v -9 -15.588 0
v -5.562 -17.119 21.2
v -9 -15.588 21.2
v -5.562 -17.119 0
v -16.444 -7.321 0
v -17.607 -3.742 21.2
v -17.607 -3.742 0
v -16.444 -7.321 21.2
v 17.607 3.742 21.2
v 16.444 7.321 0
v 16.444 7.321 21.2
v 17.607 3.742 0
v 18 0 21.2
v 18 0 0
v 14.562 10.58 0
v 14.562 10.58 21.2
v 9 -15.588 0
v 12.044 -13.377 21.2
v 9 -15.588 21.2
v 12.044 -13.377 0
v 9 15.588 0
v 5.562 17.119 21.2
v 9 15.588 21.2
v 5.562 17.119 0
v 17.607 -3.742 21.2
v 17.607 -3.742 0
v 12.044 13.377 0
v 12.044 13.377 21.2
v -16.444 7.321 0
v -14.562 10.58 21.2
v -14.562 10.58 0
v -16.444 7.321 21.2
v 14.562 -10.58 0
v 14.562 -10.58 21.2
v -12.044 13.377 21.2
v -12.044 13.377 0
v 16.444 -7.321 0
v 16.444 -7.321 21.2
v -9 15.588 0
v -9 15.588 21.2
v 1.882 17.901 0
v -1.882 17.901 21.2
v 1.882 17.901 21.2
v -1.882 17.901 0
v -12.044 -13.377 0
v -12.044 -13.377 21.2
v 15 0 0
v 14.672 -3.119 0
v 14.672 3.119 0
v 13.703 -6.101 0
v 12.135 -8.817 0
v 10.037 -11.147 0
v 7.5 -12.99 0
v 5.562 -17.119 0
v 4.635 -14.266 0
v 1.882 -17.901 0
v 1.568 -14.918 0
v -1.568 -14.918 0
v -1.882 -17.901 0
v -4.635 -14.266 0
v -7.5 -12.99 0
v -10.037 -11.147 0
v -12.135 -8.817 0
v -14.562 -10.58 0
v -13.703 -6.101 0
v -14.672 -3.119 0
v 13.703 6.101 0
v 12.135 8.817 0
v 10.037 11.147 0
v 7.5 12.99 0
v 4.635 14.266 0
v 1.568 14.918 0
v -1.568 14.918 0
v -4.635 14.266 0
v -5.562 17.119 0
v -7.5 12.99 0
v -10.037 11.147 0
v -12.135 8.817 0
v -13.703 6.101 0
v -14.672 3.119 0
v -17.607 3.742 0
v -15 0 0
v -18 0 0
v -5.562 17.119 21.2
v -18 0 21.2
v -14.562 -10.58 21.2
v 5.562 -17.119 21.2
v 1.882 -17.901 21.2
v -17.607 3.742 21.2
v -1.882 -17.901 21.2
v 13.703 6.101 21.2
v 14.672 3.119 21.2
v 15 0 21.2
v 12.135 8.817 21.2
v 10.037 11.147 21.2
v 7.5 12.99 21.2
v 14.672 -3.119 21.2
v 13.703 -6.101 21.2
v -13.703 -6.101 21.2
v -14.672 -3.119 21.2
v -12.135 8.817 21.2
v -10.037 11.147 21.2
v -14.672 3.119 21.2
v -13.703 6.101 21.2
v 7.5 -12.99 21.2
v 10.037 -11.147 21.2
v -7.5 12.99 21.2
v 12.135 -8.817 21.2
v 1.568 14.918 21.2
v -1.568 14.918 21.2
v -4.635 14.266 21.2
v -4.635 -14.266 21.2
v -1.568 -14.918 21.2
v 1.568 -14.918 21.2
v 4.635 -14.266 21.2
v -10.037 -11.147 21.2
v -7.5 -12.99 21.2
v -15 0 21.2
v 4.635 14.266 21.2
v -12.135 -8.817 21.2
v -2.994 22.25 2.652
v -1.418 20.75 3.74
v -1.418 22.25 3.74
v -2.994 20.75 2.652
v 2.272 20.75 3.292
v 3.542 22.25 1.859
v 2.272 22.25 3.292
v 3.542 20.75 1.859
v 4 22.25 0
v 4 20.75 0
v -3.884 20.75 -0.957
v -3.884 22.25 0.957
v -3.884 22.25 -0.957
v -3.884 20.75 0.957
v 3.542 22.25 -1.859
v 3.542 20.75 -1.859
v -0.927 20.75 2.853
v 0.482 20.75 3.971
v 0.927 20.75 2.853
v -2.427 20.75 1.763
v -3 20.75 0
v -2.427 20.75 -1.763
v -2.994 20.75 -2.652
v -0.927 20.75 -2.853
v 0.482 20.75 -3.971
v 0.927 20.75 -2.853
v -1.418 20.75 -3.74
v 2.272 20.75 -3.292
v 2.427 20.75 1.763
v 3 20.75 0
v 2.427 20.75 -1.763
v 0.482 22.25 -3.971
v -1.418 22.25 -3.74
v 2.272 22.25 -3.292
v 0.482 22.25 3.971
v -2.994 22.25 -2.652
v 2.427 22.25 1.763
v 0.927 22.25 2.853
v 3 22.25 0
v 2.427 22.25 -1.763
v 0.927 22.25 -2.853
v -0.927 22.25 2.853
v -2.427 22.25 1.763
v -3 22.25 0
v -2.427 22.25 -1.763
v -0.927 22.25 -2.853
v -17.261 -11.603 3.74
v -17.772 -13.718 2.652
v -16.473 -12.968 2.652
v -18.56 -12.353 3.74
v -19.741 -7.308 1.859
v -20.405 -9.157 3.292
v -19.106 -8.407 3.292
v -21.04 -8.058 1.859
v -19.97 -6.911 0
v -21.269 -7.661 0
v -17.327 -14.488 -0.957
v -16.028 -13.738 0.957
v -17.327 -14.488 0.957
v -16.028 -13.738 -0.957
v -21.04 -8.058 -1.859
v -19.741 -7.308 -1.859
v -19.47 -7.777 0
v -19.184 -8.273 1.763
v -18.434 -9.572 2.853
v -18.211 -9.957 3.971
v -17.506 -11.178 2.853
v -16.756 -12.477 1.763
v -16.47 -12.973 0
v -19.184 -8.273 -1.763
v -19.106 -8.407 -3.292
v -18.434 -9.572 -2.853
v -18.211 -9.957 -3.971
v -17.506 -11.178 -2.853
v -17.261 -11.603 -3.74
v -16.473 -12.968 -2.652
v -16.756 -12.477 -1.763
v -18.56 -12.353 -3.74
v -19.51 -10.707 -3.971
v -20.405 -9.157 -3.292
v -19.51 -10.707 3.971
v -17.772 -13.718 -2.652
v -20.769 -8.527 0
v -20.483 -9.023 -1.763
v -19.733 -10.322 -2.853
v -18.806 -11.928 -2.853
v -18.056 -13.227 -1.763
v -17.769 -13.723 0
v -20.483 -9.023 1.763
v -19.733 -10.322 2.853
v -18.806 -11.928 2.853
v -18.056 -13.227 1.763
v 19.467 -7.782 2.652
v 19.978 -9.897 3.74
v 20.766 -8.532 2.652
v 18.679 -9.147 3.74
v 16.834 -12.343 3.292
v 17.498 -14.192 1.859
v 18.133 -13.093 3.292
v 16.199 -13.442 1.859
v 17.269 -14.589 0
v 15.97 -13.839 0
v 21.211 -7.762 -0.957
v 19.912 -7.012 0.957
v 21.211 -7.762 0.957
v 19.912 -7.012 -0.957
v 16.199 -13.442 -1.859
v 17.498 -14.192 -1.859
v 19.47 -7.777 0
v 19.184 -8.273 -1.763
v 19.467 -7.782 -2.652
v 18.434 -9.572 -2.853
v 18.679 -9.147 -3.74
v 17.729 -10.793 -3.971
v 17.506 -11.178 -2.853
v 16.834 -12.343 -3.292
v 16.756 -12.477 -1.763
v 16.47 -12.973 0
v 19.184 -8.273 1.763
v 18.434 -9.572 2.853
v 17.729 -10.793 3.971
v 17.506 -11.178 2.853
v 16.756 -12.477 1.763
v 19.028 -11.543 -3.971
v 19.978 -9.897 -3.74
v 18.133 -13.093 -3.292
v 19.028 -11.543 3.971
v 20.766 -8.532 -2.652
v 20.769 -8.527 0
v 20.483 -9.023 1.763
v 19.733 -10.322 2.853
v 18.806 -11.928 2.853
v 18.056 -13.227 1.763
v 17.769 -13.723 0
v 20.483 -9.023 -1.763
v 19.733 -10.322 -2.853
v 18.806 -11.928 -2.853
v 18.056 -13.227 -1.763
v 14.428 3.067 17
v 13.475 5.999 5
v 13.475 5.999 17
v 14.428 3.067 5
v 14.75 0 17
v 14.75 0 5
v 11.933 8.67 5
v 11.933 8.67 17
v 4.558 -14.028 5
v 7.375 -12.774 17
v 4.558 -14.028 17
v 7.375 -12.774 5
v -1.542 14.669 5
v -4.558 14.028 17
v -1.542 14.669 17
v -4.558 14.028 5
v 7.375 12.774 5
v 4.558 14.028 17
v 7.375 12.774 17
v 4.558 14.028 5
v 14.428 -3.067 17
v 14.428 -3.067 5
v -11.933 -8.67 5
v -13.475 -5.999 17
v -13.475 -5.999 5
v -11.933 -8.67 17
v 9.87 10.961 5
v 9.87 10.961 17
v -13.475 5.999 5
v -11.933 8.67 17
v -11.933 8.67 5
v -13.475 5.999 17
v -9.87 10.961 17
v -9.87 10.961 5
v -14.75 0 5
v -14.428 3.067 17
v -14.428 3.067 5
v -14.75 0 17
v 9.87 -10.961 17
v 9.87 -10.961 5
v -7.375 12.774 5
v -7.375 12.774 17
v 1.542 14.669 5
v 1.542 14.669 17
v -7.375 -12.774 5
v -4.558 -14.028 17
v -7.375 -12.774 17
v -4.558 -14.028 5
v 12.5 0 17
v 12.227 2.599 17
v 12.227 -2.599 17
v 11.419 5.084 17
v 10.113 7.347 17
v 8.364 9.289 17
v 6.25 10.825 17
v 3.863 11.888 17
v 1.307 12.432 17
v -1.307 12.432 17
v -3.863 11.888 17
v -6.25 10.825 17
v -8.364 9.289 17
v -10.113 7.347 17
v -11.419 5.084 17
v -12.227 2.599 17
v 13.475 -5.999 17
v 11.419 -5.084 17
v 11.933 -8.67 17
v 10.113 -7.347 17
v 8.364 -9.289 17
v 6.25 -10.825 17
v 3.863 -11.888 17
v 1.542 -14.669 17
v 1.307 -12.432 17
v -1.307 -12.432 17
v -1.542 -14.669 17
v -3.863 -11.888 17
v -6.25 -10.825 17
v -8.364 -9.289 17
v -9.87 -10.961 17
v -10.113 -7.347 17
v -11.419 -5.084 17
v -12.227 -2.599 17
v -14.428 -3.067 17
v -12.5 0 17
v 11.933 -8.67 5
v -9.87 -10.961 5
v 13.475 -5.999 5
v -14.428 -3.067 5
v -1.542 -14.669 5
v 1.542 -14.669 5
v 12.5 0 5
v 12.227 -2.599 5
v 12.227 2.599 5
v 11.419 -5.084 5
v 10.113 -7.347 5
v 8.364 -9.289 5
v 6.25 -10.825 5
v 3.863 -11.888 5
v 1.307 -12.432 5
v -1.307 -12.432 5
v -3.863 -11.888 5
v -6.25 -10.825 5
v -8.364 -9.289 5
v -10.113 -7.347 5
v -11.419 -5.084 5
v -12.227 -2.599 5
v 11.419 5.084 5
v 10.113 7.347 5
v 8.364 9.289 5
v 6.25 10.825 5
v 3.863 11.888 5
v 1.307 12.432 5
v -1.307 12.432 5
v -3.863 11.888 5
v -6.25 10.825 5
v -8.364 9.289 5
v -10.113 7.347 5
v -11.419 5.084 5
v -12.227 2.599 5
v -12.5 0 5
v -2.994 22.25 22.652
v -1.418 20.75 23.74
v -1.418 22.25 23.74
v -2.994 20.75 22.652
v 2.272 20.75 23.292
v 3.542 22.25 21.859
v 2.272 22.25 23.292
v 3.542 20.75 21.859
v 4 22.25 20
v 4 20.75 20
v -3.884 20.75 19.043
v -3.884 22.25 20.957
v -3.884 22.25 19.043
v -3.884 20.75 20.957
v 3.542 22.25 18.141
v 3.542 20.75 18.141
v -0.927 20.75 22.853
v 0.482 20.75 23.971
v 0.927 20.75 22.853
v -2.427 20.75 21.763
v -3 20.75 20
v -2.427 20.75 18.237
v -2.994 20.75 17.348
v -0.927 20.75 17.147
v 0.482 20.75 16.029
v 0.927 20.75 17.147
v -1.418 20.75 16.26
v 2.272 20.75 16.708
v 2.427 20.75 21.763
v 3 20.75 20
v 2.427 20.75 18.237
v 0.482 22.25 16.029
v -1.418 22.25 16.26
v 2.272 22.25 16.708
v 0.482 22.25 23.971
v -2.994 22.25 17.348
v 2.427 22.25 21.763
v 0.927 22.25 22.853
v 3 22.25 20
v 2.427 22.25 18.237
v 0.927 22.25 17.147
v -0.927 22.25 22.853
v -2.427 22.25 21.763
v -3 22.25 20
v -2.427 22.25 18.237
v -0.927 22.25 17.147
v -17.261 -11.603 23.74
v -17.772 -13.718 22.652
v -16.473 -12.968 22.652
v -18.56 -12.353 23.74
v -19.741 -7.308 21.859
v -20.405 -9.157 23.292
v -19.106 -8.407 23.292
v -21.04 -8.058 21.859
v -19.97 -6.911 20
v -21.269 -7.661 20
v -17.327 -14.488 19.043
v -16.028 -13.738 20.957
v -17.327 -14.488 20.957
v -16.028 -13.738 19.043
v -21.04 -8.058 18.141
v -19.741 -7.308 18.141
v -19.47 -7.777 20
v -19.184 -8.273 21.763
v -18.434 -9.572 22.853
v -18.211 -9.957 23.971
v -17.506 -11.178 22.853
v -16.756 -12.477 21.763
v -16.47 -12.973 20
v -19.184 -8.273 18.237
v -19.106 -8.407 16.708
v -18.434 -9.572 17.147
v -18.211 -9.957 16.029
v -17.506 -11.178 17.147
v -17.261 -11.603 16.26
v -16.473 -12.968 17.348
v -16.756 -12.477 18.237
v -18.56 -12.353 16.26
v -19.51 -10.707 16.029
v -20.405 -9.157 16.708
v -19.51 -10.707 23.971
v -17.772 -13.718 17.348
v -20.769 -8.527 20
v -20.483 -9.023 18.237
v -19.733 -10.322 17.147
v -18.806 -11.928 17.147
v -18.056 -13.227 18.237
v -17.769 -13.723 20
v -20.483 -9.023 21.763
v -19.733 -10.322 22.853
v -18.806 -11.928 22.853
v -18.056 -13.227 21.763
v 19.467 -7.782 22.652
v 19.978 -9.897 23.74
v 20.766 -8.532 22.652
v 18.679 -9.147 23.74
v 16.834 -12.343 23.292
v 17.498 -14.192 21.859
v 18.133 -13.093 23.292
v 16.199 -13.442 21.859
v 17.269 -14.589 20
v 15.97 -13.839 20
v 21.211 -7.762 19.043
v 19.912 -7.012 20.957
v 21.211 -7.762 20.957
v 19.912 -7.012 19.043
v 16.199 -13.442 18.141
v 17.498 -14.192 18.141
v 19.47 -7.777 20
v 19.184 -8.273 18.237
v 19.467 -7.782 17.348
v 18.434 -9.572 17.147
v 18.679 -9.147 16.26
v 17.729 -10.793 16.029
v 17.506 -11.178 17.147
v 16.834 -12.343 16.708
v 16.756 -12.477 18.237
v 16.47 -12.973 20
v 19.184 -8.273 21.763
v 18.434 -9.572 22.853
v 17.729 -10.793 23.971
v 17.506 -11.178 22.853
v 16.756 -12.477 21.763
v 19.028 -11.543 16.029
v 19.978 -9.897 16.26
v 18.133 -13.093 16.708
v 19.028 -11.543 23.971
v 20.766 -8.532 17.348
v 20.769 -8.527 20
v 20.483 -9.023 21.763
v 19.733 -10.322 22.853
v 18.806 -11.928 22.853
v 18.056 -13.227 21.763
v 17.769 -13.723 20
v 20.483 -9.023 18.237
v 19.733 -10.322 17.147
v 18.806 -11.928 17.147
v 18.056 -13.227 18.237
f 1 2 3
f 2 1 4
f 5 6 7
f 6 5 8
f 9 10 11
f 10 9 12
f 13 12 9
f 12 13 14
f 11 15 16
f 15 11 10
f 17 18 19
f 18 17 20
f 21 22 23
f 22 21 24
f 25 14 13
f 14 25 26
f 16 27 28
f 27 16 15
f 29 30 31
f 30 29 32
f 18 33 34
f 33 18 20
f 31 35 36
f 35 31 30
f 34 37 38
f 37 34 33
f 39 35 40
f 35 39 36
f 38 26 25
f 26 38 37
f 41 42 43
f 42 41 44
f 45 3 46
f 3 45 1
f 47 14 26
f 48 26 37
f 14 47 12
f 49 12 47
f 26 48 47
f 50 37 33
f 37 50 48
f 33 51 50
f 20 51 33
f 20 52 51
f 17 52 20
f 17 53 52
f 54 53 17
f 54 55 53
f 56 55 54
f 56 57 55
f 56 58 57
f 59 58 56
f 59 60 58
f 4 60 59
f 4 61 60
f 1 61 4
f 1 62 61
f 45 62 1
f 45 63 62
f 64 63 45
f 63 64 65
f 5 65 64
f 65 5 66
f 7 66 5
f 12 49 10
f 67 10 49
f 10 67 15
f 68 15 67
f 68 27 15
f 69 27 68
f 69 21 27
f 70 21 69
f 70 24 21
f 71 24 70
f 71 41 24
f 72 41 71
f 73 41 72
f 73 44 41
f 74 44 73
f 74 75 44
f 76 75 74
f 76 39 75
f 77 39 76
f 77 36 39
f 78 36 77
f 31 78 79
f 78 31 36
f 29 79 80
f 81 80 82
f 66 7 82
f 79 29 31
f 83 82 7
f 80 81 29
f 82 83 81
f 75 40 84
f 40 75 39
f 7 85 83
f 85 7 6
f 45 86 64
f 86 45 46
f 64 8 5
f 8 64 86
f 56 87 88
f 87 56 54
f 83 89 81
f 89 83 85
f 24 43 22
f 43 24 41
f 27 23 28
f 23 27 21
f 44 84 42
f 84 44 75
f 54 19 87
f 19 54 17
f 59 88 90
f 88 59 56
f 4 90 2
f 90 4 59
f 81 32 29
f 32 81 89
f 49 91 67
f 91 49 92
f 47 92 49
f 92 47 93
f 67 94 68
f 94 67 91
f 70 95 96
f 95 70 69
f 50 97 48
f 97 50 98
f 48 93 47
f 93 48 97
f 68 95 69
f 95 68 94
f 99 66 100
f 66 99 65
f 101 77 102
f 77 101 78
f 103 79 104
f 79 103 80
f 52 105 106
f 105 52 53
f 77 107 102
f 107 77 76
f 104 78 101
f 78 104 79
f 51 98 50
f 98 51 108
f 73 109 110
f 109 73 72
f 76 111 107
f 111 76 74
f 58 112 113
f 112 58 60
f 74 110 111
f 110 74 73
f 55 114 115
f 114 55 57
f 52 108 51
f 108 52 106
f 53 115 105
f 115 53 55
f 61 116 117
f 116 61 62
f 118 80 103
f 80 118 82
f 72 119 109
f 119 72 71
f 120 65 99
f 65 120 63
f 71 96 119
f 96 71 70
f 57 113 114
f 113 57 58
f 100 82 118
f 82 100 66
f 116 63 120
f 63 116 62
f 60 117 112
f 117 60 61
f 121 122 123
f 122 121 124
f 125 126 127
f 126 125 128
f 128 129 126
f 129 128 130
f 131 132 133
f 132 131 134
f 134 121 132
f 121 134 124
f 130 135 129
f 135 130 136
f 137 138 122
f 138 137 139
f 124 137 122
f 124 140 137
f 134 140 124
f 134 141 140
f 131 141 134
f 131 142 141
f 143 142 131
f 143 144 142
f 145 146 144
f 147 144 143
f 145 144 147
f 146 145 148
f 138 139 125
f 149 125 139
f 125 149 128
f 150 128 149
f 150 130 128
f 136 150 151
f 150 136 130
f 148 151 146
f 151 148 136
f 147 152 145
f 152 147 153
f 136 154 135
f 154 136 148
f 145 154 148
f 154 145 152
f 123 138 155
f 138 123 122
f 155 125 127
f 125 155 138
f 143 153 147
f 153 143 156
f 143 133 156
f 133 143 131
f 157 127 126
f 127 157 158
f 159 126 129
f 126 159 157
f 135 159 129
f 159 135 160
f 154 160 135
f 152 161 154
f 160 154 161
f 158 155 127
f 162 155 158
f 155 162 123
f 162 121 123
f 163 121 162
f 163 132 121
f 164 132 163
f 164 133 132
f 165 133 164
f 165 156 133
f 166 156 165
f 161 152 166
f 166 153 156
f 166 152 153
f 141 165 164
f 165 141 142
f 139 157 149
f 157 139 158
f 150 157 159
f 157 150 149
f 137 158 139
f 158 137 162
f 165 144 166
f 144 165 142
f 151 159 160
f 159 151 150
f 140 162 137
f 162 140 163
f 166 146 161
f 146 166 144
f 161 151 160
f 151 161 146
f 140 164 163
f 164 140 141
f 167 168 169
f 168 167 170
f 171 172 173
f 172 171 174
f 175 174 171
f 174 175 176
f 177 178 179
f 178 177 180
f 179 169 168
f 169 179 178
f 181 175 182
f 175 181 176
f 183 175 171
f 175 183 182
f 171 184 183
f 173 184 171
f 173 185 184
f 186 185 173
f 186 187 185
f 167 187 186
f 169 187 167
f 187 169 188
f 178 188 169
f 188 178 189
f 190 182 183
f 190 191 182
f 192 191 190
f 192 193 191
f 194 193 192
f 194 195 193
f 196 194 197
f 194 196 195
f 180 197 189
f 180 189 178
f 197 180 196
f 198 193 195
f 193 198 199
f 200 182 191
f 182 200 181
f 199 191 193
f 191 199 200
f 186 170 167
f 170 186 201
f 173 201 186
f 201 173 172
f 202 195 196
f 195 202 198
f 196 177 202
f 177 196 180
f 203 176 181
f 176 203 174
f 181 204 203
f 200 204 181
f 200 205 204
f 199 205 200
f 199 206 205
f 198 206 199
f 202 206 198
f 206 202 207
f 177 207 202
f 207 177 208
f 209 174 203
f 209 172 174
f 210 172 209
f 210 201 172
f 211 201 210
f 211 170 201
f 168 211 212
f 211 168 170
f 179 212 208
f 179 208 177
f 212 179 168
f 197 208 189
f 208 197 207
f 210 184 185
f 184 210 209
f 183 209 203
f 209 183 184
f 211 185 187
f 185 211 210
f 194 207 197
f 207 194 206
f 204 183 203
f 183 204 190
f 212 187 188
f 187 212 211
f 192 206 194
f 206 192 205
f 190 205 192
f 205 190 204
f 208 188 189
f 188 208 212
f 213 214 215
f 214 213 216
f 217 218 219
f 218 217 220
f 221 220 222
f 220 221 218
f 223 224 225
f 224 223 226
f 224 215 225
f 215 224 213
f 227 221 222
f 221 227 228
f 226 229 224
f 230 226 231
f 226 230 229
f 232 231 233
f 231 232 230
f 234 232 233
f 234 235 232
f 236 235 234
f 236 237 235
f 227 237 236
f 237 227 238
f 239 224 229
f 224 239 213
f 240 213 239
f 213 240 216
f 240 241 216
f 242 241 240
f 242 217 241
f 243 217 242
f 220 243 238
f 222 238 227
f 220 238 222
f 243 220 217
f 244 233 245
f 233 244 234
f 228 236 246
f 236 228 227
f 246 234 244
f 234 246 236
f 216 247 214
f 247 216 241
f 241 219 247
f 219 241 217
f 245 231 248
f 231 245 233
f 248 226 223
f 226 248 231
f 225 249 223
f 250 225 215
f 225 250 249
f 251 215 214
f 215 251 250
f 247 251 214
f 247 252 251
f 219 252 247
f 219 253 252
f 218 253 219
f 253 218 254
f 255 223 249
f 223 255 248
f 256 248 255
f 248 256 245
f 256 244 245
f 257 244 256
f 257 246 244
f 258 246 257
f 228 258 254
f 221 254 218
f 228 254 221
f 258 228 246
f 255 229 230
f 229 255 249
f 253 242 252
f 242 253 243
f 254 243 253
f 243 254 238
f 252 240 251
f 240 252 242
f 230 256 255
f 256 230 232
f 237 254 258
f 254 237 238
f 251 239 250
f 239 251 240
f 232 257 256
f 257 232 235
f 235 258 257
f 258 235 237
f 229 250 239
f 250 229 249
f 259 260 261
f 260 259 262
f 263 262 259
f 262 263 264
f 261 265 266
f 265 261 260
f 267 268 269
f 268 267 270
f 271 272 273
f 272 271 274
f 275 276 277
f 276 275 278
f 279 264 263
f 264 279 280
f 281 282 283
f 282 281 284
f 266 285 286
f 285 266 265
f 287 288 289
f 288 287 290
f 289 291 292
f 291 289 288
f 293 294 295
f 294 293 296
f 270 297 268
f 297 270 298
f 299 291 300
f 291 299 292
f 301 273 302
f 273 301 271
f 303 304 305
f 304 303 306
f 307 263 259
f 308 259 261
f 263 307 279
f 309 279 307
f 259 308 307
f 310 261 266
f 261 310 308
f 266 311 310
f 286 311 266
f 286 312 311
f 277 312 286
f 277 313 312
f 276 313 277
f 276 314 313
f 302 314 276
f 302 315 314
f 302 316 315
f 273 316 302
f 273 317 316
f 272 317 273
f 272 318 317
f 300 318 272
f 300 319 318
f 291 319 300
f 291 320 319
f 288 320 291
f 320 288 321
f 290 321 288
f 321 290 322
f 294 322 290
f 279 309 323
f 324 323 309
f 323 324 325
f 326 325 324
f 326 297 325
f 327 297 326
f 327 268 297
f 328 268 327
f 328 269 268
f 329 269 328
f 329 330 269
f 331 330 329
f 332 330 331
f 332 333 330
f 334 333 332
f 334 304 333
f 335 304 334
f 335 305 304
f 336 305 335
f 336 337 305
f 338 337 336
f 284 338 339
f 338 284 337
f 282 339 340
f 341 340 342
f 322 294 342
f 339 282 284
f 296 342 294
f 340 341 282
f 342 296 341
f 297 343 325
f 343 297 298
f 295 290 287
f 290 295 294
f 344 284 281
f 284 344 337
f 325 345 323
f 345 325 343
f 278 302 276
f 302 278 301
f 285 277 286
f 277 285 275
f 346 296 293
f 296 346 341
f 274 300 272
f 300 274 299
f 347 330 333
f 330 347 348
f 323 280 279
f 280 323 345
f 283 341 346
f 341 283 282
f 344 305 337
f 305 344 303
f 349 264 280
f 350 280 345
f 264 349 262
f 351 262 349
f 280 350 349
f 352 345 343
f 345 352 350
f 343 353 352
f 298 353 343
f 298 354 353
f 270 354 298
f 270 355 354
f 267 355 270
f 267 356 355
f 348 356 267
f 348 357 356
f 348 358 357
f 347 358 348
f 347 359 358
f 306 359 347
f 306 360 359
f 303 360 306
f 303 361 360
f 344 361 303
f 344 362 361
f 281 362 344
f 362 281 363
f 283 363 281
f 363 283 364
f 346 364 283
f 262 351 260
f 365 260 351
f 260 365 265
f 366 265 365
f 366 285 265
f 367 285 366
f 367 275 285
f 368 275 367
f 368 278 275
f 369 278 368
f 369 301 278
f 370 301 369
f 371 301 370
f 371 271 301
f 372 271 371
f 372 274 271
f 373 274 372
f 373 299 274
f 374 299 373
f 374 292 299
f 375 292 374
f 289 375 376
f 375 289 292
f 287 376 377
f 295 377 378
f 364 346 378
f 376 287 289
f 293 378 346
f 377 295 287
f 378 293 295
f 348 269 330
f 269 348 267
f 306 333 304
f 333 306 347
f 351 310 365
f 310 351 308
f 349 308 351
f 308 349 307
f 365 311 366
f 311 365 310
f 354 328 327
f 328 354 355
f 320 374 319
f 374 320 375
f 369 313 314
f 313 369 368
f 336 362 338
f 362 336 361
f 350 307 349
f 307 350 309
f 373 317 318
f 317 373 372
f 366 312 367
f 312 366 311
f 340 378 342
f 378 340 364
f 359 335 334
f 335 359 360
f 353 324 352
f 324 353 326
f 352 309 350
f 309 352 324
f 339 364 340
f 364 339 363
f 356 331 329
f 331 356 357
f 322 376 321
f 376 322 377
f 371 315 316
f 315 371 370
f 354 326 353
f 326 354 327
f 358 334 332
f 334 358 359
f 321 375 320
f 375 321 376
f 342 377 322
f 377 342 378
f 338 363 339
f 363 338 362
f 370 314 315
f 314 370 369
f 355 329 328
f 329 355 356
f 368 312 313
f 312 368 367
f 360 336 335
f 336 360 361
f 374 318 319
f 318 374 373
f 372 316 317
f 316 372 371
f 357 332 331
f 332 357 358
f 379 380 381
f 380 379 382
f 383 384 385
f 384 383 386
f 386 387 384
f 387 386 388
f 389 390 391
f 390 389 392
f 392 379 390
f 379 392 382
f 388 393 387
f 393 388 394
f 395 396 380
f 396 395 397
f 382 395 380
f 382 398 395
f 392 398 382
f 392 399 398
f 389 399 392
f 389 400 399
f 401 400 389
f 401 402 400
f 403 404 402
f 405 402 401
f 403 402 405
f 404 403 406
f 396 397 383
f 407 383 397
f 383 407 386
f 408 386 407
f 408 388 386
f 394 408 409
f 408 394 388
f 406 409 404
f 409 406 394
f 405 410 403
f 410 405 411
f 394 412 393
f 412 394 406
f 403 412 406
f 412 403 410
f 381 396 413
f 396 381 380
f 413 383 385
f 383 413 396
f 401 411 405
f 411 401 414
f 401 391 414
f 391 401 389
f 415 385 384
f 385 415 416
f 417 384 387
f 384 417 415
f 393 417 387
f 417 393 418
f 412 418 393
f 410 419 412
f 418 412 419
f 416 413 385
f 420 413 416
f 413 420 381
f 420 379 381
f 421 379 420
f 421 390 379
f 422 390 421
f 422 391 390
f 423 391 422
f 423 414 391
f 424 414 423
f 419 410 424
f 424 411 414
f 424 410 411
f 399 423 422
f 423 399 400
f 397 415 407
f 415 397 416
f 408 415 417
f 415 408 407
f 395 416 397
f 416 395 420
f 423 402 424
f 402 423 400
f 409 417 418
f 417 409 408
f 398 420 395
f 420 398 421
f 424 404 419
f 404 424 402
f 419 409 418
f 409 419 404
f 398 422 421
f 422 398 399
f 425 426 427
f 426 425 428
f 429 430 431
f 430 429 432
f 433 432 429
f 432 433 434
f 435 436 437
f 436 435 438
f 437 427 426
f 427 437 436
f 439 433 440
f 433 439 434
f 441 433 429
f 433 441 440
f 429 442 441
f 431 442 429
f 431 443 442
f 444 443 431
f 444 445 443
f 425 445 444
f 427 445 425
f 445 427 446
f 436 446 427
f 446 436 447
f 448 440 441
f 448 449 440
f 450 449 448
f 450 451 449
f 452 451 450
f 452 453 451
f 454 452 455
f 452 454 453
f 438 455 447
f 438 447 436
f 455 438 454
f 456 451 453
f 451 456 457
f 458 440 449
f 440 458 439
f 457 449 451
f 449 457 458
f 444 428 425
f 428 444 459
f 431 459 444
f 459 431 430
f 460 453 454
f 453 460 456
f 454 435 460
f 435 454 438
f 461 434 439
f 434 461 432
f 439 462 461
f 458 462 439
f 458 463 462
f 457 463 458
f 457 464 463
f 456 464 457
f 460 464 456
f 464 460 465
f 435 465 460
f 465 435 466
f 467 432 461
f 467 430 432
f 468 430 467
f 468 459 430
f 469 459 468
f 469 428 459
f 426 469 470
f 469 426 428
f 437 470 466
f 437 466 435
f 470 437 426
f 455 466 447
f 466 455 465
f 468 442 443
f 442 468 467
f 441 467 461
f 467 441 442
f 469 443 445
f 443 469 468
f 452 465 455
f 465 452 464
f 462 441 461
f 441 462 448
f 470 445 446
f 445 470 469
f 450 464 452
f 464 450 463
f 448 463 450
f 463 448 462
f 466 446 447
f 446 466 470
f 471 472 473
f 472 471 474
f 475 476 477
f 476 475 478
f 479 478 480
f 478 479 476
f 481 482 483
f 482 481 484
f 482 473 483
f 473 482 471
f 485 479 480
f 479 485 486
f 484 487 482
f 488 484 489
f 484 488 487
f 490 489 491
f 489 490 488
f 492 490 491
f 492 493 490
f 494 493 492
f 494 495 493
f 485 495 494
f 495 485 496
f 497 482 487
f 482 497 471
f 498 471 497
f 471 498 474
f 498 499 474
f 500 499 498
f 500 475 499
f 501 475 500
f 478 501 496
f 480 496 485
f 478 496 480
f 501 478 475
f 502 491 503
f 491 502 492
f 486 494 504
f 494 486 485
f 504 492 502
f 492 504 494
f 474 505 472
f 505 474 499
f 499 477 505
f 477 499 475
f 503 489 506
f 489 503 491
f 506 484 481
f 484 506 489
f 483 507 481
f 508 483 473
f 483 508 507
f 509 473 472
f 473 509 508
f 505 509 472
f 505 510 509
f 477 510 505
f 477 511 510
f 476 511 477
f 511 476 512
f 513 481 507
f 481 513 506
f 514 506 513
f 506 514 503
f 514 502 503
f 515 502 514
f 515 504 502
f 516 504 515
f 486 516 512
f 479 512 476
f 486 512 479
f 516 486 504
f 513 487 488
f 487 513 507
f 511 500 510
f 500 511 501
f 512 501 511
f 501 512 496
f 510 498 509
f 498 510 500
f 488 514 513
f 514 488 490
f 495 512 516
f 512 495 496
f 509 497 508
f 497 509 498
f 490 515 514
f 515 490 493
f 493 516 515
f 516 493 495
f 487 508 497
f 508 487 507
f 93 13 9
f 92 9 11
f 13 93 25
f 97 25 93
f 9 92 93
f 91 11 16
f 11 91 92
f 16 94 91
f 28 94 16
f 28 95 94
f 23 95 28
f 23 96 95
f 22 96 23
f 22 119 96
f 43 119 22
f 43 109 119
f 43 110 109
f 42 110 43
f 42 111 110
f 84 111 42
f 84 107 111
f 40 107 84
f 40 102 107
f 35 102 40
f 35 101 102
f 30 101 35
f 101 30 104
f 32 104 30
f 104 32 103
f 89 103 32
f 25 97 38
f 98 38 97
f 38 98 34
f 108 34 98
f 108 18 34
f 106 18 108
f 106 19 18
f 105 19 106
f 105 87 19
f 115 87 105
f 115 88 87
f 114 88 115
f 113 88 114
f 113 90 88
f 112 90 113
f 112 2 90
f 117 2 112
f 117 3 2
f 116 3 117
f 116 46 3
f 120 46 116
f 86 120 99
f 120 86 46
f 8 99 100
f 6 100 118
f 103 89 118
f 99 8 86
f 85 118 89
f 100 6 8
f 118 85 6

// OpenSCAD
// Parameters for the model
main_body_outer_diameter = 36; // Reduced to make the wall thinner
main_body_inner_diameter = 30;
main_body_height = 20;
mounting_loop_radius = 4; // Matches original model
mounting_loop_thickness = 1.5; // Matches original model
mounting_loop_offset = main_body_outer_diameter / 2 + mounting_loop_radius - 0.5; // Adjusted position closer to original
end_cap_thickness = 1.2; // Reduced thickness to match original model
inner_ring_outer_diameter = main_body_inner_diameter - 0.5; // Adjusted for snug fit
inner_ring_inner_diameter = 25;
inner_ring_height = 12; // Increased height to match original model

// Function to create a mounting loop
module mounting_loop() {
    translate([0, mounting_loop_offset, 0])
        rotate([90, 0, 0])
            difference() {
                cylinder(r=mounting_loop_radius, h=mounting_loop_thickness, center=true);
                cylinder(r=mounting_loop_radius - 1, h=mounting_loop_thickness + 1, center=true);
            }
}

// Main body
module main_body() {
    difference() {
        cylinder(r=main_body_outer_diameter / 2, h=main_body_height, center=false);
        translate([0, 0, -1])
            cylinder(r=main_body_inner_diameter / 2, h=main_body_height + 2, center=false);
    }
    // Add mounting loops
    for (i = [0, 120, 240]) {
        rotate([0, 0, i])
            mounting_loop();
    }
}

// End cap
module end_cap() {
    difference() {
        cylinder(r=main_body_outer_diameter / 2, h=end_cap_thickness, center=false);
        translate([0, 0, -1])
            cylinder(r=main_body_inner_diameter / 2, h=end_cap_thickness + 2, center=false);
    }
    // Add mounting loops
    for (i = [0, 120, 240]) {
        rotate([0, 0, i])
            mounting_loop();
    }
}

// Inner cylindrical ring
module inner_cylindrical_ring() {
    difference() {
        cylinder(r=inner_ring_outer_diameter / 2, h=inner_ring_height, center=false);
        translate([0, 0, -1])
            cylinder(r=inner_ring_inner_diameter / 2, h=inner_ring_height + 2, center=false);
    }
}

// Assembly
module assembly() {
    // Layer 3: Main body
    main_body();

    // Layer 2: Inner cylindrical ring
    translate([0, 0, 5])
        inner_cylindrical_ring();

    // Layer 1: End cap
    translate([0, 0, main_body_height])
        end_cap();
}

// Render the assembly
assembly();
